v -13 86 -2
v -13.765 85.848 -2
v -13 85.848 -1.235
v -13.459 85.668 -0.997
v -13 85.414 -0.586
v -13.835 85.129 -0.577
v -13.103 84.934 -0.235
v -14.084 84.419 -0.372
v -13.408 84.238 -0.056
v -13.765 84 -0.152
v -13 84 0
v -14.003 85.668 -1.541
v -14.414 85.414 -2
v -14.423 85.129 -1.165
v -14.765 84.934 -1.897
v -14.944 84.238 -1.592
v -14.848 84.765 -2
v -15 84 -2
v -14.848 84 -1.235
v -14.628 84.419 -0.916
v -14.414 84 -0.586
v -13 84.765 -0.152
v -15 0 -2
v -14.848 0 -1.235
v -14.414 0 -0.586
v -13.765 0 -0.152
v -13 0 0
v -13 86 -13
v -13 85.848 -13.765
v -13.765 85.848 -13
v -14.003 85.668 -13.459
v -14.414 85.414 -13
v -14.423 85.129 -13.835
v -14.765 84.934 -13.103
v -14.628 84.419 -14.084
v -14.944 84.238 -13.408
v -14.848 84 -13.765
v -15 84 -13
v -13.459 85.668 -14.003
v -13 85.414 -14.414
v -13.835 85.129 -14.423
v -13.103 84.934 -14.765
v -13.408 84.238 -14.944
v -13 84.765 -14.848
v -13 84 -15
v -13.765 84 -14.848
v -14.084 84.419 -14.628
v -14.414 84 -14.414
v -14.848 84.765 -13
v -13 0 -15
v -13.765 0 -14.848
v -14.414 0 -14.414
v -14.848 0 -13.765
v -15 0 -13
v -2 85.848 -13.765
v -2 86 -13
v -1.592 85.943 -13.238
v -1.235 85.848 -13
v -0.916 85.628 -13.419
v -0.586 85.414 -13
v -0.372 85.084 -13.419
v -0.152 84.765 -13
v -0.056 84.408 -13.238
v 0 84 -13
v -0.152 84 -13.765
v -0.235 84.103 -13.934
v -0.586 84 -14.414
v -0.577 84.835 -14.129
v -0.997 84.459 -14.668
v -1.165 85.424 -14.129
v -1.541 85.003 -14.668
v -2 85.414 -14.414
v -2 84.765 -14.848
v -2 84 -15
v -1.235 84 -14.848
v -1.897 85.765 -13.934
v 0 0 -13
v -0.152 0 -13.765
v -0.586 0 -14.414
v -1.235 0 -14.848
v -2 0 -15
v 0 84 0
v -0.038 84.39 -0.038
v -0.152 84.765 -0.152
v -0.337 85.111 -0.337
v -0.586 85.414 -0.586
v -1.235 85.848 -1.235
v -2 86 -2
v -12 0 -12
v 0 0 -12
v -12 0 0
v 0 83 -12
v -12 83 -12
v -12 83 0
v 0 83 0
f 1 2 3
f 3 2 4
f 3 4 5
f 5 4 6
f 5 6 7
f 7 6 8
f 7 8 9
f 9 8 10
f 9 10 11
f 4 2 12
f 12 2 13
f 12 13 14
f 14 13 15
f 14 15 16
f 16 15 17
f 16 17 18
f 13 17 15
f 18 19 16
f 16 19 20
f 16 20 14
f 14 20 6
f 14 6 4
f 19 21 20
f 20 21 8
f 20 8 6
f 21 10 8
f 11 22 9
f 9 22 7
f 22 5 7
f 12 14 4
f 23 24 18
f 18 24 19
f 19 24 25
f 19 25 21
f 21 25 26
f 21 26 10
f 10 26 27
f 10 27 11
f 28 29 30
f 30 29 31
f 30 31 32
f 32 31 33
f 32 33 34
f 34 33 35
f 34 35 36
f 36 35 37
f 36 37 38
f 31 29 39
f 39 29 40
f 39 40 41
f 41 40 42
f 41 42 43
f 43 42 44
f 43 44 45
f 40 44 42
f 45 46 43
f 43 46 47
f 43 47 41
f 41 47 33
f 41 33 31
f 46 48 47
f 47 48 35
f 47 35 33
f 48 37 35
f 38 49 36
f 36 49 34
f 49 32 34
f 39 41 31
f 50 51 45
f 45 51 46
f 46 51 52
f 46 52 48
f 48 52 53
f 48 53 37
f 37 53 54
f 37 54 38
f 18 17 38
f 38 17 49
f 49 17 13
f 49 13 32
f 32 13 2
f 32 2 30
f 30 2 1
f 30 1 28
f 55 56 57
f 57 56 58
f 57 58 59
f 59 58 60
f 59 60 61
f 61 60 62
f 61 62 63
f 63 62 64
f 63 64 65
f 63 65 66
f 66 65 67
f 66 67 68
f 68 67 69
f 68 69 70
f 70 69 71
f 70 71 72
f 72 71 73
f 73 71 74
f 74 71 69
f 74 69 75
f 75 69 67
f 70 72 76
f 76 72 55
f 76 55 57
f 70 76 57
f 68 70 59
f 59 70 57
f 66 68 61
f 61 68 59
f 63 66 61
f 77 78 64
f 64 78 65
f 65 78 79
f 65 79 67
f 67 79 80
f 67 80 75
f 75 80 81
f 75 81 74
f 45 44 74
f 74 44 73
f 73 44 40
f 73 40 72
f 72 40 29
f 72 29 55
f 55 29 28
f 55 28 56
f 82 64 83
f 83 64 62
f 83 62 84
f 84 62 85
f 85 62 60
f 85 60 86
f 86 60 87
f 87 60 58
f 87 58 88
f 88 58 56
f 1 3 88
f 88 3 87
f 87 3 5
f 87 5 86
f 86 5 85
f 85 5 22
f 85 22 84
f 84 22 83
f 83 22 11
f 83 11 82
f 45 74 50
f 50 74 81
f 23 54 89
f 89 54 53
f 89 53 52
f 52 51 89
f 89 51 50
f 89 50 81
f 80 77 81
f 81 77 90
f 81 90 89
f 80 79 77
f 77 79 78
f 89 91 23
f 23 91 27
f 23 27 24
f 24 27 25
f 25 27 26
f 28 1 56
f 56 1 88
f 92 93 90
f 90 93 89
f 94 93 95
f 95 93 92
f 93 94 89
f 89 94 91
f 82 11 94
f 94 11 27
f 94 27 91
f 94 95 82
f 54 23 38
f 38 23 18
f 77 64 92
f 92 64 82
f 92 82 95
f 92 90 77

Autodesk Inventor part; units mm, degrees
ref_plane "YZ Plane" through (0, 0, 0) normal (1, 0, 0) x (0, 1, 0)
ref_plane "XZ Plane" through (0, 0, 0) normal (0, 1, 0) x (-1, 0, 0)
ref_plane "XY Plane" through (0, 0, 0) normal (0, 0, 1) x (1, 0, 0)
sketch "Sketch1" plane through (0, 0, 0) normal (0, 1, 0) x (-1, 0, 0)
  line L0 (15, 0) -> (15, -15)
  line L1 (15, -15) -> (0, -15)
  line L2 (0, -15) -> (0, -12)
  line L3 (0, -12) -> (12, -12)
  line L4 (12, -12) -> (12, 0)
  line L5 (12, 0) -> (15, 0)
  point P0 (0, 0)
  dimension "d0" = 15
  dimension "d1" = 15
  dimension "d10" = 3
  dimension "d11" = 12
  dimension "d12" = 12
extrude "Extrusion1" add sketch "Sketch1" along normal blind 86
sketch "Sketch4" plane through (-12, 0, 0) normal (1, 0, 0) x (0, 0, -1)
  line L0 (0, 0) -> (0, 86) projected
  line L1 (12, 0) -> (12, 86) projected
  line L2 (0, 86) -> (12, 86)
  line L3 (12, 86) -> (12, 83)
  line L4 (12, 83) -> (0, 83)
  line L5 (0, 83) -> (0, 86)
  dimension "d13" = 3
extrude "Extrusion3" add sketch "Sketch4" along normal blind 3
sketch "Sketch6" plane through (-12, 0, -12) normal (0, 0, 1) x (1, 0, 0)
  line L0 (3, 86) -> (12, 86) projected
  line L1 (12, 86) -> (3, 86)
  line L2 (3, 86) -> (3, 83)
  line L3 (3, 83) -> (12, 83)
  line L4 (12, 83) -> (12, 86)
  point P0 (12, 0)
extrude "Extrusion4" add sketch "Sketch6" along normal blind 12
fillet "Fillet3" radius 2 7 edges at (-7.5, 86, -15) (-15, 86, -7.5) (-15, 43, -15) (0, 43, -15) (-7.5, 86, 0) (0, 86, -7.5) (-15, 43, 0)
properties part number "DoosjeHoeken" material "ABS Plastic"
